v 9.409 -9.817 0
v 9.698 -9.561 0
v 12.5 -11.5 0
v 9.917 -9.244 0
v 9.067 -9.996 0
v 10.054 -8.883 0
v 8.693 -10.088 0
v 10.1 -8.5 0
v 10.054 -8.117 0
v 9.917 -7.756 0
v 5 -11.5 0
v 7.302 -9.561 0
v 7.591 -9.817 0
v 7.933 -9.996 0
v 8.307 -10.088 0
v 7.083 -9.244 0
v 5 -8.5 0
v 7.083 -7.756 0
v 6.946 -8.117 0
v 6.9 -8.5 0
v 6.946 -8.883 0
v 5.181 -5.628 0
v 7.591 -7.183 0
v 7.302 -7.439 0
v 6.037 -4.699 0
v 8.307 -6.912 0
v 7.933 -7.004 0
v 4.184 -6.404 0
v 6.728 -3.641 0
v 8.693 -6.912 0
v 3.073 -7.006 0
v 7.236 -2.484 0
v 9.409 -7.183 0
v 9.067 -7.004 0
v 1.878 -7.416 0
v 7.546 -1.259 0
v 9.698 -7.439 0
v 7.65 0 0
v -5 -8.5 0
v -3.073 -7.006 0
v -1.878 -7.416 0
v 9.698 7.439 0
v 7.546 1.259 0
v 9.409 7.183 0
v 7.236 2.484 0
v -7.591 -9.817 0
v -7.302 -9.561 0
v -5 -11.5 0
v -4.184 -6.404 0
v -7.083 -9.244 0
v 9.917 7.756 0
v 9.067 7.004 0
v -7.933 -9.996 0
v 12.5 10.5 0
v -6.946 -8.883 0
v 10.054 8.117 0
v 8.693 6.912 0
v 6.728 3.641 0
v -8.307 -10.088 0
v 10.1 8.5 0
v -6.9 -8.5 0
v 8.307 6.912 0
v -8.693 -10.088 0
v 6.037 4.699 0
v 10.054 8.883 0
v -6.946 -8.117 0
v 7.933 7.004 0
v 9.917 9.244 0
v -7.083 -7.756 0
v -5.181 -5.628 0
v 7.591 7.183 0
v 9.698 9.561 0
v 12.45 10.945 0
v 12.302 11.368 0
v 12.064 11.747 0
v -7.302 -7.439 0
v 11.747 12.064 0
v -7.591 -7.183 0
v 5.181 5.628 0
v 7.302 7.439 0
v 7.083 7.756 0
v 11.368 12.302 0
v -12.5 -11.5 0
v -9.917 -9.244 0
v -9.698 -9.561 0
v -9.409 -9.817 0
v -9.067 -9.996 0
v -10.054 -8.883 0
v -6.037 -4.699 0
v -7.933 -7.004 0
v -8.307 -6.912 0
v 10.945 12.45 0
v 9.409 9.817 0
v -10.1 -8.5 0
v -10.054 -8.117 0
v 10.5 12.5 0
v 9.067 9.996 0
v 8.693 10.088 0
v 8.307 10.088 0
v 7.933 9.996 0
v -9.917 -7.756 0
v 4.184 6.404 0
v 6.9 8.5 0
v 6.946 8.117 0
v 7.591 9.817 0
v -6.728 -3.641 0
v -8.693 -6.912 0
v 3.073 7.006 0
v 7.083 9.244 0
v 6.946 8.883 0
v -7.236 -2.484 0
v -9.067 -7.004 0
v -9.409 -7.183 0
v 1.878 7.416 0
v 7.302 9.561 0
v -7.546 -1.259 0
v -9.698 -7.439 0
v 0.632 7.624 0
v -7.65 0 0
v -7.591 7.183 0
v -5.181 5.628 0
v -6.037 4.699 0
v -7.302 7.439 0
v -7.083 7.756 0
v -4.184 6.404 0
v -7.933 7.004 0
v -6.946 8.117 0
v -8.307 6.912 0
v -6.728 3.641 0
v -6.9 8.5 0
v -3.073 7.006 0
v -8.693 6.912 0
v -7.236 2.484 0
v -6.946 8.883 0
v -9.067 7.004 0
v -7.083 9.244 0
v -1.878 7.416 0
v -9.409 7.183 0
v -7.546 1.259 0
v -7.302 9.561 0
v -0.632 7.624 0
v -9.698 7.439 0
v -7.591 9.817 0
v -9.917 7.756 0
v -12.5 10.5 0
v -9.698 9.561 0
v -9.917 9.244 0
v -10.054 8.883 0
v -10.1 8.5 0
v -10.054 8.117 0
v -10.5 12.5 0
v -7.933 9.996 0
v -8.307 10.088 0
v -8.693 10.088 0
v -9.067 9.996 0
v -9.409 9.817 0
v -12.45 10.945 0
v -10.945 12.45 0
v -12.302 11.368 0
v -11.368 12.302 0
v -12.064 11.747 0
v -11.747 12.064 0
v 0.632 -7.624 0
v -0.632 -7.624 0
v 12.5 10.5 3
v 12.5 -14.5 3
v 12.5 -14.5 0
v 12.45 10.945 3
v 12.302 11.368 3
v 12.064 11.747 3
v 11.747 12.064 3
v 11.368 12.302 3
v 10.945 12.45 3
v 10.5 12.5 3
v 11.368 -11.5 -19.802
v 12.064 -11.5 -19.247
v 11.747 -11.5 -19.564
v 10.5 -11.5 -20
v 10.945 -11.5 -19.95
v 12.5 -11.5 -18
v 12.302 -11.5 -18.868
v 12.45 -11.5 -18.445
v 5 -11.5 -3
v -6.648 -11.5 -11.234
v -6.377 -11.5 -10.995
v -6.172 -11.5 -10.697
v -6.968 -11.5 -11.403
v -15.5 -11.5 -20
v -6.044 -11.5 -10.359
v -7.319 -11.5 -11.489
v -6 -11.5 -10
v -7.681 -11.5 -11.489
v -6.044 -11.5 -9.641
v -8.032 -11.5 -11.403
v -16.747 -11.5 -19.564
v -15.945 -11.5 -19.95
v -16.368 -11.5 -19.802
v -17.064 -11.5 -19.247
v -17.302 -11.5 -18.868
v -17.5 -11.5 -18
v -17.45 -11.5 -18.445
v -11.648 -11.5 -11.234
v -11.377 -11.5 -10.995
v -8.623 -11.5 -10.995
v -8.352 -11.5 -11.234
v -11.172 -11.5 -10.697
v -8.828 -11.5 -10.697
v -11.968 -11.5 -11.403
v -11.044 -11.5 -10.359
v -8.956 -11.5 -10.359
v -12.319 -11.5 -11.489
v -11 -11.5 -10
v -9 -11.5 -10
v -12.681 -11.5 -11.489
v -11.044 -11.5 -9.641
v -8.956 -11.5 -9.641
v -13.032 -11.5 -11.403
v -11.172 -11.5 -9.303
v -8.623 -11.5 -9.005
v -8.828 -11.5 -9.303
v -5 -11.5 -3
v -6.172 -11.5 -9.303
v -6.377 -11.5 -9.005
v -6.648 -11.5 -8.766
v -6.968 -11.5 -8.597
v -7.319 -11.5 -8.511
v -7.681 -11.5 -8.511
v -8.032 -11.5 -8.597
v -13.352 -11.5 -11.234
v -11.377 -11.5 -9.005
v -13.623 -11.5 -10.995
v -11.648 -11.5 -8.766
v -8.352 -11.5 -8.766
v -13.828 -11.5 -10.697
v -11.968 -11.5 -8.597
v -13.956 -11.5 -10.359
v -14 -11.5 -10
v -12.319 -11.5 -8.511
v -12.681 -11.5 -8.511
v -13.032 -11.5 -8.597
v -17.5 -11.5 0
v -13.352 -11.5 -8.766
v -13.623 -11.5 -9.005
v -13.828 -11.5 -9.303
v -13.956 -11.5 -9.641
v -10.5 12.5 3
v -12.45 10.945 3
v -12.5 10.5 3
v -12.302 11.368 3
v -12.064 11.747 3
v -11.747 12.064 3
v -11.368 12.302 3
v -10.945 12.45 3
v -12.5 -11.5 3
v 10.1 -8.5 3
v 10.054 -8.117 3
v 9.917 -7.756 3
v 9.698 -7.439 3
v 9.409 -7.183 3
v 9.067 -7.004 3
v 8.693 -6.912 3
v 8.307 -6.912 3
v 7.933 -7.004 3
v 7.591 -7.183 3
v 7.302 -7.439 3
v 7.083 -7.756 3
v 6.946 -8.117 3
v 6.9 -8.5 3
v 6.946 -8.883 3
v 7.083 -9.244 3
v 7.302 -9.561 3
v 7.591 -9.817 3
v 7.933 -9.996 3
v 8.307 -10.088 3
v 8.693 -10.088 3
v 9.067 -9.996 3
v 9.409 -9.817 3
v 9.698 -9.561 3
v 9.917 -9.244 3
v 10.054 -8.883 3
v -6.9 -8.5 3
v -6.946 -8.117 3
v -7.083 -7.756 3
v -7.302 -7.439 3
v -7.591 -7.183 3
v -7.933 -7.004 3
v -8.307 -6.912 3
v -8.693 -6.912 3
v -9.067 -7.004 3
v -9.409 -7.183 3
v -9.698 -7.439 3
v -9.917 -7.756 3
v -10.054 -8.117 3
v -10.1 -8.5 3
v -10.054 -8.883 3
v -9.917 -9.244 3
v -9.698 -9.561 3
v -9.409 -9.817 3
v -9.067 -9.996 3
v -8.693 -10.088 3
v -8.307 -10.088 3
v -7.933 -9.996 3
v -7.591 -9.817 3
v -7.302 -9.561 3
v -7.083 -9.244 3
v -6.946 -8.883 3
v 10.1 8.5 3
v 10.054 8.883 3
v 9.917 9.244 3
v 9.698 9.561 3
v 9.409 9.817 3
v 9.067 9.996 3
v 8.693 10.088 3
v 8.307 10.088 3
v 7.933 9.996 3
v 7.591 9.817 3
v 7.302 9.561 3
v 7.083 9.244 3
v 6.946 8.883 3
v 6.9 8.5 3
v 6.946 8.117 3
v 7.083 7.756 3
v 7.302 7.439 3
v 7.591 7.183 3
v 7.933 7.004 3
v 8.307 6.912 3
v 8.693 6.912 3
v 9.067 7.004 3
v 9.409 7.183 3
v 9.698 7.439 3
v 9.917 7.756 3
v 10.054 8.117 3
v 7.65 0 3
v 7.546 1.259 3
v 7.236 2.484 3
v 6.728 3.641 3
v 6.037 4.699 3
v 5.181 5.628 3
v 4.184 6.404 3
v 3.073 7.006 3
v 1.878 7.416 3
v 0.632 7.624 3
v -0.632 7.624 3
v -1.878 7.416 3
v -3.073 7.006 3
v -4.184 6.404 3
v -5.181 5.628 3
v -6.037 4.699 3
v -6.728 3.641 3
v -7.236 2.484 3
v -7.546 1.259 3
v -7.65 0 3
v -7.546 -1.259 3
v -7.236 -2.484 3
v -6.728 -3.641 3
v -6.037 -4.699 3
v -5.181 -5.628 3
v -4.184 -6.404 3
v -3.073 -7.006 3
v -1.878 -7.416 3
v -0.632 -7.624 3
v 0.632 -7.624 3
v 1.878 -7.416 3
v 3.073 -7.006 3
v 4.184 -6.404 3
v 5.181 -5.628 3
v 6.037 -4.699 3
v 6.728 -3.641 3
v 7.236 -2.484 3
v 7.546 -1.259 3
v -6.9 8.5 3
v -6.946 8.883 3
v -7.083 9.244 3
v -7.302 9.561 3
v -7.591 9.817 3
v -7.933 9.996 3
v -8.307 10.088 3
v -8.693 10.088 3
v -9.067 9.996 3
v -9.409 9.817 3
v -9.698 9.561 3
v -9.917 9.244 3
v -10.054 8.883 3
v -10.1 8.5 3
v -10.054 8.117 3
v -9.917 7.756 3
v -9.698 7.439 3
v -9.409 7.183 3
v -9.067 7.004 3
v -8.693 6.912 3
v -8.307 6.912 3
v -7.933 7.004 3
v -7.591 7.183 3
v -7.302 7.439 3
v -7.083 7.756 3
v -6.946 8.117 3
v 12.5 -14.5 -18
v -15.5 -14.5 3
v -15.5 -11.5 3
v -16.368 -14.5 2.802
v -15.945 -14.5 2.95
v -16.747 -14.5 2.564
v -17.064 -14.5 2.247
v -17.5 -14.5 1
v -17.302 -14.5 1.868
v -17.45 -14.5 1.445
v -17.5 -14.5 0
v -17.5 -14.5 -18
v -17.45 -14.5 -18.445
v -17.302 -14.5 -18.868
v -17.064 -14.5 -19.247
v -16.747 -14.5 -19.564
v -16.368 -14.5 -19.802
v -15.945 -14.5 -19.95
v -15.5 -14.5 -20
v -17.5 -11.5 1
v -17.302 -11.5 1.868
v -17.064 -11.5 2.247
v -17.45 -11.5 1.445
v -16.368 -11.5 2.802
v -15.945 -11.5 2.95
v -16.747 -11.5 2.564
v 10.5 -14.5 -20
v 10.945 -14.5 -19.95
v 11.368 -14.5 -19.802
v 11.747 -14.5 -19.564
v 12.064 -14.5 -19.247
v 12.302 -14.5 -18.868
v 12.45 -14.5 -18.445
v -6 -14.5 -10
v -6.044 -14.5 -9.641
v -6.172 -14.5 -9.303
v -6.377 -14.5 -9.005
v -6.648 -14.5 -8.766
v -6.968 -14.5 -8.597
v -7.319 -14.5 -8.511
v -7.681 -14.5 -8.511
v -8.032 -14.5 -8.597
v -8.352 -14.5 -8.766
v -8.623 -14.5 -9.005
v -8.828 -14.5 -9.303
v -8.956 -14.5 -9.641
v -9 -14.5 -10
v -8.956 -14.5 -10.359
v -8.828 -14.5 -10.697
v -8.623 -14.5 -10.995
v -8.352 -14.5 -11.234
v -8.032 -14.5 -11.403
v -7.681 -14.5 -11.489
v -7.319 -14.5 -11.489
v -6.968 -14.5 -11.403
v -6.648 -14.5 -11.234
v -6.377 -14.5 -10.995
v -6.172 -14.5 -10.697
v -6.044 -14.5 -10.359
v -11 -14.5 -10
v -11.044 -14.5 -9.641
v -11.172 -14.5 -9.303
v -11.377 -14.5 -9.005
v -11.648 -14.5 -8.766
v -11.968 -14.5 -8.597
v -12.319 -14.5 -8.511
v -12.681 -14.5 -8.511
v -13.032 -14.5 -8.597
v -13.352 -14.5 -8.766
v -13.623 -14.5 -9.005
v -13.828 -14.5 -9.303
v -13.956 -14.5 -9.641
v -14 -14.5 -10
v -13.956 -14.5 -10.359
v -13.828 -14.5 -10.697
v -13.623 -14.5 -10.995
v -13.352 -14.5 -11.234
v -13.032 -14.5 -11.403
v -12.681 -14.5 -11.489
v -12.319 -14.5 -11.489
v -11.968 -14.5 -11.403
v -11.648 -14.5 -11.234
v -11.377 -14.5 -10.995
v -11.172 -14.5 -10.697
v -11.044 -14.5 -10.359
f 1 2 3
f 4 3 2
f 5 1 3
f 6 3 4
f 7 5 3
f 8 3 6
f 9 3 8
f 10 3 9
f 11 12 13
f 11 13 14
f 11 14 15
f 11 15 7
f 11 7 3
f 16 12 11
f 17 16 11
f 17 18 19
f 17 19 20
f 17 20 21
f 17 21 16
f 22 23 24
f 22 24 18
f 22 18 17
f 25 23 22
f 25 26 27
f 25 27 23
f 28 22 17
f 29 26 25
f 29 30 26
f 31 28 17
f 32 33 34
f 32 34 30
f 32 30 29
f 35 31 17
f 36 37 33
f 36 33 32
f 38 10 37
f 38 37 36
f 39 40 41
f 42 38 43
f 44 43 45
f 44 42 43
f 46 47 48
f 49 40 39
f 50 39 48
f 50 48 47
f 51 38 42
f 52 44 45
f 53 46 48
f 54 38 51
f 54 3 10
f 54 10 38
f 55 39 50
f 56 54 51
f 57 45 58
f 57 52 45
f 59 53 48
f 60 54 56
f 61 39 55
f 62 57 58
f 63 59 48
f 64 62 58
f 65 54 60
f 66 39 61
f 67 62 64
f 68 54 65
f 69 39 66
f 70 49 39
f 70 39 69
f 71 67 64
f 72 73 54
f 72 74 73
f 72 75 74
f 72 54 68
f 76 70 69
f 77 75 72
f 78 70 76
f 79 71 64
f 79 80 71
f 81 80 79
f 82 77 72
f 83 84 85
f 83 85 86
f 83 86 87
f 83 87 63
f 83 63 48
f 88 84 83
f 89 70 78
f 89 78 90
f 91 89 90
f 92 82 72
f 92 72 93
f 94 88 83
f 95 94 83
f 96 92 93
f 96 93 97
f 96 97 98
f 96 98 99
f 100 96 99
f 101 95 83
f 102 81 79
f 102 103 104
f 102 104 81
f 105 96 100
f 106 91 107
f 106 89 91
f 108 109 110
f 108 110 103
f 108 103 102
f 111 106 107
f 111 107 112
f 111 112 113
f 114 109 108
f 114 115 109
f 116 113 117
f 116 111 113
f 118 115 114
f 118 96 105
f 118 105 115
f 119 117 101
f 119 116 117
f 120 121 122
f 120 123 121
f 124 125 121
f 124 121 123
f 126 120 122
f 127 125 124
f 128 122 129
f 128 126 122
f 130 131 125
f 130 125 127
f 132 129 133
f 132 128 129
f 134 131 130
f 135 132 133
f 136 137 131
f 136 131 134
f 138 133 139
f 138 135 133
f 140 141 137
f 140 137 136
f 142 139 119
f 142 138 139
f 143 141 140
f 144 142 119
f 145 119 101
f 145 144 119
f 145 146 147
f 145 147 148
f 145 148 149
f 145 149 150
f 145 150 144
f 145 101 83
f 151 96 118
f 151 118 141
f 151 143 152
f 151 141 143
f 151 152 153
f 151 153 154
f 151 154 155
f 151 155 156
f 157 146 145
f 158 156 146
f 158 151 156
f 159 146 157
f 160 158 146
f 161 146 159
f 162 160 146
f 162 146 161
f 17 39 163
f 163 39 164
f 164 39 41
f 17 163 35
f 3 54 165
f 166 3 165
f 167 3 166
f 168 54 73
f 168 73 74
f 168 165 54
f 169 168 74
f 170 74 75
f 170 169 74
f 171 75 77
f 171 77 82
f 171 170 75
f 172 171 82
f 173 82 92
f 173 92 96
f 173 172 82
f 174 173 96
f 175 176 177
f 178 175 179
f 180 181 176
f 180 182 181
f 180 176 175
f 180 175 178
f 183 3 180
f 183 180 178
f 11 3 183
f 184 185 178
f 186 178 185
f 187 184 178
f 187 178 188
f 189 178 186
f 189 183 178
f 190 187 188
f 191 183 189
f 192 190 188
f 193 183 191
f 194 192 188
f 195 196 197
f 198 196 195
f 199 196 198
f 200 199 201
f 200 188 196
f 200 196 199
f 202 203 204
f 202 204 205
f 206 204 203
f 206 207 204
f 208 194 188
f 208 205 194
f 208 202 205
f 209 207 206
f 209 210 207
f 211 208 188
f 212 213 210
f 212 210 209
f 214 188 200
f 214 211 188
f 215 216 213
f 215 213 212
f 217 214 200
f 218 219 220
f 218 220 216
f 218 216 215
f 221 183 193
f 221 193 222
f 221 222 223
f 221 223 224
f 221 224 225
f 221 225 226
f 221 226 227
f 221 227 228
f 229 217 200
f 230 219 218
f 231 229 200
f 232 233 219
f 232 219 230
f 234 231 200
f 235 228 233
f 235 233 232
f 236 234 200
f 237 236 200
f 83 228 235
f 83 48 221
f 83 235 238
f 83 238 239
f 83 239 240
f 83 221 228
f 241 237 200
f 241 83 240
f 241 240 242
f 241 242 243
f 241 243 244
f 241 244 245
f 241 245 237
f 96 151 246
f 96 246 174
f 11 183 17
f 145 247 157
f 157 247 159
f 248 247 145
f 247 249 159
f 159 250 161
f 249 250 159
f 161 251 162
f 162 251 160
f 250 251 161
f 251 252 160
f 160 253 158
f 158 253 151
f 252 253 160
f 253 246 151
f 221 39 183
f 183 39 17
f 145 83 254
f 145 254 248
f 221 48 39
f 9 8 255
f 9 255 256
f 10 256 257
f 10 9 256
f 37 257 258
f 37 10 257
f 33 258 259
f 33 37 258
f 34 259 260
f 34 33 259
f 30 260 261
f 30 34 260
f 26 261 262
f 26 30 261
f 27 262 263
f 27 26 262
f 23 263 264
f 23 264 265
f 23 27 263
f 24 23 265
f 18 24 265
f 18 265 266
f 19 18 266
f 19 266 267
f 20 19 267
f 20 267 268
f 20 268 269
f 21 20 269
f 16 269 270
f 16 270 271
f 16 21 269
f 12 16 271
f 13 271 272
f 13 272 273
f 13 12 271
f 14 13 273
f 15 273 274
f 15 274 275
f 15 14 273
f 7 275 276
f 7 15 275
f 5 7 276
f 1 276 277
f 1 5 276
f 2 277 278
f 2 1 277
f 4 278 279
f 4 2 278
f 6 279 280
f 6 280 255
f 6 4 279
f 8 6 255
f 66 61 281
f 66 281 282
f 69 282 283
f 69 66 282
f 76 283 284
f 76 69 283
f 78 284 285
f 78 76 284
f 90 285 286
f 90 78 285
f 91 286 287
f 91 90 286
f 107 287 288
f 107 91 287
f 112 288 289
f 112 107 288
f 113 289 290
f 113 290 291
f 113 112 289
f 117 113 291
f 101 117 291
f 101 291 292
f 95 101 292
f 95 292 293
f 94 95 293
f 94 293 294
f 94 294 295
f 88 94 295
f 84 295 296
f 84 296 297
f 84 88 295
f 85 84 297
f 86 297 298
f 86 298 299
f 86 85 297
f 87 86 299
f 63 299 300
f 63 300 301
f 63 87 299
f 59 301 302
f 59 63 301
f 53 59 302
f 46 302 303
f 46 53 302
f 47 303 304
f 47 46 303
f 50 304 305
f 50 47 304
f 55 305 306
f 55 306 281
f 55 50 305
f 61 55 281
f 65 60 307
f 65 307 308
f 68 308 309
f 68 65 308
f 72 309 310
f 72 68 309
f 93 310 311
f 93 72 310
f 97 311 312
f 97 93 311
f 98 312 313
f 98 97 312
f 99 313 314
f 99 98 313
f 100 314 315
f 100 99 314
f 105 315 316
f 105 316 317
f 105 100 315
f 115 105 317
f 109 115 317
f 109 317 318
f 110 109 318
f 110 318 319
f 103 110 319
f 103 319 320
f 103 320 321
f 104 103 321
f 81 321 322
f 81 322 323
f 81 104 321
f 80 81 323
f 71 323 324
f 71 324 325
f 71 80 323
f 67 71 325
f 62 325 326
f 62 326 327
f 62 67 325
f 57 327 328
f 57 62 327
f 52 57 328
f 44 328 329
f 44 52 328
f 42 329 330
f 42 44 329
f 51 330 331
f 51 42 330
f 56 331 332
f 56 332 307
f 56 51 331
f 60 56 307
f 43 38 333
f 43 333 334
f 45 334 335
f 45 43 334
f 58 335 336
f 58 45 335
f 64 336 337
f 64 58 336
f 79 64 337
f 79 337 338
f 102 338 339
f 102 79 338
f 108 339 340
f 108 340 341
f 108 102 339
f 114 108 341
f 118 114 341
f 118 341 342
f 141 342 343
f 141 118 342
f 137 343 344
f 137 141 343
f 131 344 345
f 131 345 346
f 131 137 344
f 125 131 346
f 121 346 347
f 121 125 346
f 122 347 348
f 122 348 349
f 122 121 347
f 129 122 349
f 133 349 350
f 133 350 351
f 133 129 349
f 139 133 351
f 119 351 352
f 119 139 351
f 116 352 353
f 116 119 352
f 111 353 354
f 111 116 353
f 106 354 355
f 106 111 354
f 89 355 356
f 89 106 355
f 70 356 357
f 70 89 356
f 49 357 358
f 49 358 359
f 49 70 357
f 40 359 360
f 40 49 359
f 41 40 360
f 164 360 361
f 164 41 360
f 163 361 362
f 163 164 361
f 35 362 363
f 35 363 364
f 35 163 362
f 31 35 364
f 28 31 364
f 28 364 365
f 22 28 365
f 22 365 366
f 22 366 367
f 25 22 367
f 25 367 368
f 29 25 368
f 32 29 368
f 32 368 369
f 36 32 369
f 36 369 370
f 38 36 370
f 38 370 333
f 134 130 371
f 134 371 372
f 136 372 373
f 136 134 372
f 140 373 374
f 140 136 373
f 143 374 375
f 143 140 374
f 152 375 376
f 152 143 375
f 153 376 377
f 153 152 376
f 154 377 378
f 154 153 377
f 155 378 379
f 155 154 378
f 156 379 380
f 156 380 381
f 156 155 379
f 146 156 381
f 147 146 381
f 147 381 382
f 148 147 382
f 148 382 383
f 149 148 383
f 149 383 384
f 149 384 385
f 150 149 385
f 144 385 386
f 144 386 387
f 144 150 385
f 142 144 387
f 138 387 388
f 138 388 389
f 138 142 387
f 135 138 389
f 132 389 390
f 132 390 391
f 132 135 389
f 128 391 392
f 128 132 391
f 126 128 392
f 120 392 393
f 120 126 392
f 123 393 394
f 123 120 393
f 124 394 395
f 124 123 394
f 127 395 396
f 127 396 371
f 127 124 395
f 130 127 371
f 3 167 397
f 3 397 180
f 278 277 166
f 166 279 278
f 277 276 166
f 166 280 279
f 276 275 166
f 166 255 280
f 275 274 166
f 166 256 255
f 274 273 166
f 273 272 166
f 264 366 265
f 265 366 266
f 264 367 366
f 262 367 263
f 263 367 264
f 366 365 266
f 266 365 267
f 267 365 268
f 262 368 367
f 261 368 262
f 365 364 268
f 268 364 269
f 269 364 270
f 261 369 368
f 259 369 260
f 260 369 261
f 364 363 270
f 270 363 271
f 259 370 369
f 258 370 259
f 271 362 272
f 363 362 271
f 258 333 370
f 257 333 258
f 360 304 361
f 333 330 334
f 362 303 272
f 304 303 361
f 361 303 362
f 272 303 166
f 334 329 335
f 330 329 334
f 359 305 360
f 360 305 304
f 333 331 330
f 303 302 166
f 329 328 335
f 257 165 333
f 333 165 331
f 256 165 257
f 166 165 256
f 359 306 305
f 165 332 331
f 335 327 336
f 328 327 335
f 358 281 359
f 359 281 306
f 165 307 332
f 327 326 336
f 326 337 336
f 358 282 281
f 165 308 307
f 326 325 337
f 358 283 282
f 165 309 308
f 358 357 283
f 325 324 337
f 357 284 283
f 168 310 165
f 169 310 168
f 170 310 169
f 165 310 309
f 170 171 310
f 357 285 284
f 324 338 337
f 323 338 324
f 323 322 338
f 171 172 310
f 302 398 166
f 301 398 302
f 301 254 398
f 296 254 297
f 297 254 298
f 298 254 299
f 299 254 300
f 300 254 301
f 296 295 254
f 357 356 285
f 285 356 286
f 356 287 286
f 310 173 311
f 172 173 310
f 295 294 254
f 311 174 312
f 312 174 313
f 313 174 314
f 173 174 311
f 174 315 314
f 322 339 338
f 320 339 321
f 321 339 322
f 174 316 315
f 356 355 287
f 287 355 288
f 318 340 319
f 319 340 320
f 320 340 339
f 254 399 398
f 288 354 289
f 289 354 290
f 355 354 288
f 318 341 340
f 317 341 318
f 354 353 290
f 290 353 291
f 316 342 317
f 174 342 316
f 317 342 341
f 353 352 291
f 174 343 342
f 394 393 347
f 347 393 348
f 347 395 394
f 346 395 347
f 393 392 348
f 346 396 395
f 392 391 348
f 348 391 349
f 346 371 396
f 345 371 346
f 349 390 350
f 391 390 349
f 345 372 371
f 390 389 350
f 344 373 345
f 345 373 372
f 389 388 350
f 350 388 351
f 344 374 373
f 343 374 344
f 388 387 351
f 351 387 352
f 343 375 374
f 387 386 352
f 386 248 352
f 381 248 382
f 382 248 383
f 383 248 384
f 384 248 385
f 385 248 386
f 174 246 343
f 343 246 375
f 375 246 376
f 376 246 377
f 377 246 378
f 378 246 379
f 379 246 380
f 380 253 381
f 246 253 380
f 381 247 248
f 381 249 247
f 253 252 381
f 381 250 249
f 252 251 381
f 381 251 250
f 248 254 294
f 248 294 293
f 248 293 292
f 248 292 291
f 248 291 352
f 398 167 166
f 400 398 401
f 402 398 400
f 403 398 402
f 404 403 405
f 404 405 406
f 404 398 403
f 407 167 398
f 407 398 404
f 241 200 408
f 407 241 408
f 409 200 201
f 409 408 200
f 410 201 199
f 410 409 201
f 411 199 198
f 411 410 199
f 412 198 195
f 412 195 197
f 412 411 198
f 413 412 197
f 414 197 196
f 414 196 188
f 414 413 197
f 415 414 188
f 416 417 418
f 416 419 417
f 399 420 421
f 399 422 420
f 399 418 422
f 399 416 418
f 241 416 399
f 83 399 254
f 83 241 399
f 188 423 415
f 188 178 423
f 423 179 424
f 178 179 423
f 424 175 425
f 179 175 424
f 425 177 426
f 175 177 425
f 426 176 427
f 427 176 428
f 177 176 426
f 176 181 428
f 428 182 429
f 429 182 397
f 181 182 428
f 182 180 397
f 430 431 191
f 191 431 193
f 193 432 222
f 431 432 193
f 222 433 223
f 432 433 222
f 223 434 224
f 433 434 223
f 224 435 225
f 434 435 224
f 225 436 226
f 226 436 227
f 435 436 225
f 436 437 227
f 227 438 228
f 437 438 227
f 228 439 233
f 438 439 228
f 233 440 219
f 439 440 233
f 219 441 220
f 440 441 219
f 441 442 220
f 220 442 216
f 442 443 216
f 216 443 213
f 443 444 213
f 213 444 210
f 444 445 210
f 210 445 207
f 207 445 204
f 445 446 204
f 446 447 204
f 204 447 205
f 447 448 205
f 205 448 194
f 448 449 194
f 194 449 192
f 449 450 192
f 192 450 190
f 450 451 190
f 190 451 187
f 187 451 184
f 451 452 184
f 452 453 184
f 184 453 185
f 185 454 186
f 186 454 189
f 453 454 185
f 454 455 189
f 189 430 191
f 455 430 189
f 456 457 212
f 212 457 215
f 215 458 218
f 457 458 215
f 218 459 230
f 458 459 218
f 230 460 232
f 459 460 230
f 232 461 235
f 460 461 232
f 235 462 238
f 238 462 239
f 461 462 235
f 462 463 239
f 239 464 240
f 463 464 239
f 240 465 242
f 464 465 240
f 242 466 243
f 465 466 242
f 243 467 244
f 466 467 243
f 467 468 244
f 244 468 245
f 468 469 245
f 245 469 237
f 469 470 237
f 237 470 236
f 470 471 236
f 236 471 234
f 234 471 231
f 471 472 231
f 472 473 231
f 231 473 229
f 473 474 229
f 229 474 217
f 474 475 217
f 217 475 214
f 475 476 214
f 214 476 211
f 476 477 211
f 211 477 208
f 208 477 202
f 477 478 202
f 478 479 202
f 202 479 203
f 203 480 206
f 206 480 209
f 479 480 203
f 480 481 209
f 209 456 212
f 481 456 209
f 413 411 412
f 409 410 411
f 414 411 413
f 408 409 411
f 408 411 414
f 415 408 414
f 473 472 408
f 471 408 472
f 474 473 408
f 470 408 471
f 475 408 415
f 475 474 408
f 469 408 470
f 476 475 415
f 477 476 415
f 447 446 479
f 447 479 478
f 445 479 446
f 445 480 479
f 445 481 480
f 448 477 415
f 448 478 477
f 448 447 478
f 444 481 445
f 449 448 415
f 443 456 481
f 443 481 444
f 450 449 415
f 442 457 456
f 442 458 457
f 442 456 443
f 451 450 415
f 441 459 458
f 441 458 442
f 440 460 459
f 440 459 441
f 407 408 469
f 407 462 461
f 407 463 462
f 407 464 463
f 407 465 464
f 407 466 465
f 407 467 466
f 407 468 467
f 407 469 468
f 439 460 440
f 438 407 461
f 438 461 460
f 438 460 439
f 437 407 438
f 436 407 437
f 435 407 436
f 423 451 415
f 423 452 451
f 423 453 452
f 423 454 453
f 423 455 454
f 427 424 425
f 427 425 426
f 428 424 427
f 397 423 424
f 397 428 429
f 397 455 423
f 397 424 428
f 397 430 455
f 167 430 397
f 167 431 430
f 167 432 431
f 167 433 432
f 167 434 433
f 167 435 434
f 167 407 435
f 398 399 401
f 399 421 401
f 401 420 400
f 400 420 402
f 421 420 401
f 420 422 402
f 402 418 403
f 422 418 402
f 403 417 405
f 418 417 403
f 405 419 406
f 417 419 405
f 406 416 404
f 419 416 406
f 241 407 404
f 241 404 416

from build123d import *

# Parameters (mm, degrees)
SKETCH_R     = 7.65
SKETCH_R_2   = 1.6
PAD_DEPTH    = 3
SKETCH001_W  = 30
SKETCH001_H  = 3
PAD001_DEPTH = 20
SKETCH002_R  = 1.5
POCKET_DEPTH = 27.001
PAD002_DEPTH = 5
FILLET_R     = 2
FILLET001_R  = 2
FILLET002_R  = 2


with BuildPart() as part:
    # Sketch → Pad (new body)
    with BuildSketch(Plane.XY):
        Polygon((-12.5, -11.5), (-12.5, 12.5), (12.5, 12.5), (12.5, -14.5), (-17.5, -14.5), (-17.5, -11.5), align=None)
        Circle(SKETCH_R, mode=Mode.SUBTRACT)
        with Locations((-8.5, 8.5)):
            Circle(SKETCH_R_2, mode=Mode.SUBTRACT)
        with Locations((8.5, 8.5)):
            Circle(SKETCH_R_2, mode=Mode.SUBTRACT)
        with Locations((8.5, -8.5)):
            Circle(SKETCH_R_2, mode=Mode.SUBTRACT)
        with Locations((-8.5, -8.5)):
            Circle(SKETCH_R_2, mode=Mode.SUBTRACT)
    extrude(amount=PAD_DEPTH)

    # Sketch001 (on Face12 of Pad) → Pad001 (join)
    with BuildSketch(Plane(origin=(0, 0, 0), x_dir=(1, 0, 0), z_dir=(0, 0, -1))):
        with Locations((-2.5, 13)):
            Rectangle(SKETCH001_W, SKETCH001_H)
    extrude(amount=PAD001_DEPTH)

    # Sketch002 (on Face18 of Pad001) → Pocket (cut, through all)
    with BuildSketch(Plane.XZ.offset(14.5)):
        with Locations((-12.5, -10)):
            Circle(SKETCH002_R)
        with Locations((-7.5, -10)):
            Circle(SKETCH002_R)
    extrude(amount=-POCKET_DEPTH, mode=Mode.SUBTRACT)

    # Sketch003 (on Face16 of Pocket) → Pad002 (join, symmetric)
    with BuildSketch(Plane.YZ):
        Polygon((-11.5, 0), (-8.5, 0), (-11.5, -3), align=None)
    extrude(amount=PAD002_DEPTH, both=True)

    # Fillet
    fillet_edges = [part.edges().sort_by_distance(p)[0] for p in [
        (-17.5, -13, 3),
    ]]
    fillet(fillet_edges, radius=FILLET_R)

    # Fillet001
    fillet001_edges = [part.edges().sort_by_distance(p)[0] for p in [
        (12.5, -13, -20),
        (-17.5, -13, -20),
    ]]
    fillet(fillet001_edges, radius=FILLET001_R)

    # Fillet002
    fillet002_edges = [part.edges().sort_by_distance(p)[0] for p in [
        (12.5, 12.5, 1.5),
        (-12.5, 12.5, 1.5),
    ]]
    fillet(fillet002_edges, radius=FILLET002_R)


solid = part.part
